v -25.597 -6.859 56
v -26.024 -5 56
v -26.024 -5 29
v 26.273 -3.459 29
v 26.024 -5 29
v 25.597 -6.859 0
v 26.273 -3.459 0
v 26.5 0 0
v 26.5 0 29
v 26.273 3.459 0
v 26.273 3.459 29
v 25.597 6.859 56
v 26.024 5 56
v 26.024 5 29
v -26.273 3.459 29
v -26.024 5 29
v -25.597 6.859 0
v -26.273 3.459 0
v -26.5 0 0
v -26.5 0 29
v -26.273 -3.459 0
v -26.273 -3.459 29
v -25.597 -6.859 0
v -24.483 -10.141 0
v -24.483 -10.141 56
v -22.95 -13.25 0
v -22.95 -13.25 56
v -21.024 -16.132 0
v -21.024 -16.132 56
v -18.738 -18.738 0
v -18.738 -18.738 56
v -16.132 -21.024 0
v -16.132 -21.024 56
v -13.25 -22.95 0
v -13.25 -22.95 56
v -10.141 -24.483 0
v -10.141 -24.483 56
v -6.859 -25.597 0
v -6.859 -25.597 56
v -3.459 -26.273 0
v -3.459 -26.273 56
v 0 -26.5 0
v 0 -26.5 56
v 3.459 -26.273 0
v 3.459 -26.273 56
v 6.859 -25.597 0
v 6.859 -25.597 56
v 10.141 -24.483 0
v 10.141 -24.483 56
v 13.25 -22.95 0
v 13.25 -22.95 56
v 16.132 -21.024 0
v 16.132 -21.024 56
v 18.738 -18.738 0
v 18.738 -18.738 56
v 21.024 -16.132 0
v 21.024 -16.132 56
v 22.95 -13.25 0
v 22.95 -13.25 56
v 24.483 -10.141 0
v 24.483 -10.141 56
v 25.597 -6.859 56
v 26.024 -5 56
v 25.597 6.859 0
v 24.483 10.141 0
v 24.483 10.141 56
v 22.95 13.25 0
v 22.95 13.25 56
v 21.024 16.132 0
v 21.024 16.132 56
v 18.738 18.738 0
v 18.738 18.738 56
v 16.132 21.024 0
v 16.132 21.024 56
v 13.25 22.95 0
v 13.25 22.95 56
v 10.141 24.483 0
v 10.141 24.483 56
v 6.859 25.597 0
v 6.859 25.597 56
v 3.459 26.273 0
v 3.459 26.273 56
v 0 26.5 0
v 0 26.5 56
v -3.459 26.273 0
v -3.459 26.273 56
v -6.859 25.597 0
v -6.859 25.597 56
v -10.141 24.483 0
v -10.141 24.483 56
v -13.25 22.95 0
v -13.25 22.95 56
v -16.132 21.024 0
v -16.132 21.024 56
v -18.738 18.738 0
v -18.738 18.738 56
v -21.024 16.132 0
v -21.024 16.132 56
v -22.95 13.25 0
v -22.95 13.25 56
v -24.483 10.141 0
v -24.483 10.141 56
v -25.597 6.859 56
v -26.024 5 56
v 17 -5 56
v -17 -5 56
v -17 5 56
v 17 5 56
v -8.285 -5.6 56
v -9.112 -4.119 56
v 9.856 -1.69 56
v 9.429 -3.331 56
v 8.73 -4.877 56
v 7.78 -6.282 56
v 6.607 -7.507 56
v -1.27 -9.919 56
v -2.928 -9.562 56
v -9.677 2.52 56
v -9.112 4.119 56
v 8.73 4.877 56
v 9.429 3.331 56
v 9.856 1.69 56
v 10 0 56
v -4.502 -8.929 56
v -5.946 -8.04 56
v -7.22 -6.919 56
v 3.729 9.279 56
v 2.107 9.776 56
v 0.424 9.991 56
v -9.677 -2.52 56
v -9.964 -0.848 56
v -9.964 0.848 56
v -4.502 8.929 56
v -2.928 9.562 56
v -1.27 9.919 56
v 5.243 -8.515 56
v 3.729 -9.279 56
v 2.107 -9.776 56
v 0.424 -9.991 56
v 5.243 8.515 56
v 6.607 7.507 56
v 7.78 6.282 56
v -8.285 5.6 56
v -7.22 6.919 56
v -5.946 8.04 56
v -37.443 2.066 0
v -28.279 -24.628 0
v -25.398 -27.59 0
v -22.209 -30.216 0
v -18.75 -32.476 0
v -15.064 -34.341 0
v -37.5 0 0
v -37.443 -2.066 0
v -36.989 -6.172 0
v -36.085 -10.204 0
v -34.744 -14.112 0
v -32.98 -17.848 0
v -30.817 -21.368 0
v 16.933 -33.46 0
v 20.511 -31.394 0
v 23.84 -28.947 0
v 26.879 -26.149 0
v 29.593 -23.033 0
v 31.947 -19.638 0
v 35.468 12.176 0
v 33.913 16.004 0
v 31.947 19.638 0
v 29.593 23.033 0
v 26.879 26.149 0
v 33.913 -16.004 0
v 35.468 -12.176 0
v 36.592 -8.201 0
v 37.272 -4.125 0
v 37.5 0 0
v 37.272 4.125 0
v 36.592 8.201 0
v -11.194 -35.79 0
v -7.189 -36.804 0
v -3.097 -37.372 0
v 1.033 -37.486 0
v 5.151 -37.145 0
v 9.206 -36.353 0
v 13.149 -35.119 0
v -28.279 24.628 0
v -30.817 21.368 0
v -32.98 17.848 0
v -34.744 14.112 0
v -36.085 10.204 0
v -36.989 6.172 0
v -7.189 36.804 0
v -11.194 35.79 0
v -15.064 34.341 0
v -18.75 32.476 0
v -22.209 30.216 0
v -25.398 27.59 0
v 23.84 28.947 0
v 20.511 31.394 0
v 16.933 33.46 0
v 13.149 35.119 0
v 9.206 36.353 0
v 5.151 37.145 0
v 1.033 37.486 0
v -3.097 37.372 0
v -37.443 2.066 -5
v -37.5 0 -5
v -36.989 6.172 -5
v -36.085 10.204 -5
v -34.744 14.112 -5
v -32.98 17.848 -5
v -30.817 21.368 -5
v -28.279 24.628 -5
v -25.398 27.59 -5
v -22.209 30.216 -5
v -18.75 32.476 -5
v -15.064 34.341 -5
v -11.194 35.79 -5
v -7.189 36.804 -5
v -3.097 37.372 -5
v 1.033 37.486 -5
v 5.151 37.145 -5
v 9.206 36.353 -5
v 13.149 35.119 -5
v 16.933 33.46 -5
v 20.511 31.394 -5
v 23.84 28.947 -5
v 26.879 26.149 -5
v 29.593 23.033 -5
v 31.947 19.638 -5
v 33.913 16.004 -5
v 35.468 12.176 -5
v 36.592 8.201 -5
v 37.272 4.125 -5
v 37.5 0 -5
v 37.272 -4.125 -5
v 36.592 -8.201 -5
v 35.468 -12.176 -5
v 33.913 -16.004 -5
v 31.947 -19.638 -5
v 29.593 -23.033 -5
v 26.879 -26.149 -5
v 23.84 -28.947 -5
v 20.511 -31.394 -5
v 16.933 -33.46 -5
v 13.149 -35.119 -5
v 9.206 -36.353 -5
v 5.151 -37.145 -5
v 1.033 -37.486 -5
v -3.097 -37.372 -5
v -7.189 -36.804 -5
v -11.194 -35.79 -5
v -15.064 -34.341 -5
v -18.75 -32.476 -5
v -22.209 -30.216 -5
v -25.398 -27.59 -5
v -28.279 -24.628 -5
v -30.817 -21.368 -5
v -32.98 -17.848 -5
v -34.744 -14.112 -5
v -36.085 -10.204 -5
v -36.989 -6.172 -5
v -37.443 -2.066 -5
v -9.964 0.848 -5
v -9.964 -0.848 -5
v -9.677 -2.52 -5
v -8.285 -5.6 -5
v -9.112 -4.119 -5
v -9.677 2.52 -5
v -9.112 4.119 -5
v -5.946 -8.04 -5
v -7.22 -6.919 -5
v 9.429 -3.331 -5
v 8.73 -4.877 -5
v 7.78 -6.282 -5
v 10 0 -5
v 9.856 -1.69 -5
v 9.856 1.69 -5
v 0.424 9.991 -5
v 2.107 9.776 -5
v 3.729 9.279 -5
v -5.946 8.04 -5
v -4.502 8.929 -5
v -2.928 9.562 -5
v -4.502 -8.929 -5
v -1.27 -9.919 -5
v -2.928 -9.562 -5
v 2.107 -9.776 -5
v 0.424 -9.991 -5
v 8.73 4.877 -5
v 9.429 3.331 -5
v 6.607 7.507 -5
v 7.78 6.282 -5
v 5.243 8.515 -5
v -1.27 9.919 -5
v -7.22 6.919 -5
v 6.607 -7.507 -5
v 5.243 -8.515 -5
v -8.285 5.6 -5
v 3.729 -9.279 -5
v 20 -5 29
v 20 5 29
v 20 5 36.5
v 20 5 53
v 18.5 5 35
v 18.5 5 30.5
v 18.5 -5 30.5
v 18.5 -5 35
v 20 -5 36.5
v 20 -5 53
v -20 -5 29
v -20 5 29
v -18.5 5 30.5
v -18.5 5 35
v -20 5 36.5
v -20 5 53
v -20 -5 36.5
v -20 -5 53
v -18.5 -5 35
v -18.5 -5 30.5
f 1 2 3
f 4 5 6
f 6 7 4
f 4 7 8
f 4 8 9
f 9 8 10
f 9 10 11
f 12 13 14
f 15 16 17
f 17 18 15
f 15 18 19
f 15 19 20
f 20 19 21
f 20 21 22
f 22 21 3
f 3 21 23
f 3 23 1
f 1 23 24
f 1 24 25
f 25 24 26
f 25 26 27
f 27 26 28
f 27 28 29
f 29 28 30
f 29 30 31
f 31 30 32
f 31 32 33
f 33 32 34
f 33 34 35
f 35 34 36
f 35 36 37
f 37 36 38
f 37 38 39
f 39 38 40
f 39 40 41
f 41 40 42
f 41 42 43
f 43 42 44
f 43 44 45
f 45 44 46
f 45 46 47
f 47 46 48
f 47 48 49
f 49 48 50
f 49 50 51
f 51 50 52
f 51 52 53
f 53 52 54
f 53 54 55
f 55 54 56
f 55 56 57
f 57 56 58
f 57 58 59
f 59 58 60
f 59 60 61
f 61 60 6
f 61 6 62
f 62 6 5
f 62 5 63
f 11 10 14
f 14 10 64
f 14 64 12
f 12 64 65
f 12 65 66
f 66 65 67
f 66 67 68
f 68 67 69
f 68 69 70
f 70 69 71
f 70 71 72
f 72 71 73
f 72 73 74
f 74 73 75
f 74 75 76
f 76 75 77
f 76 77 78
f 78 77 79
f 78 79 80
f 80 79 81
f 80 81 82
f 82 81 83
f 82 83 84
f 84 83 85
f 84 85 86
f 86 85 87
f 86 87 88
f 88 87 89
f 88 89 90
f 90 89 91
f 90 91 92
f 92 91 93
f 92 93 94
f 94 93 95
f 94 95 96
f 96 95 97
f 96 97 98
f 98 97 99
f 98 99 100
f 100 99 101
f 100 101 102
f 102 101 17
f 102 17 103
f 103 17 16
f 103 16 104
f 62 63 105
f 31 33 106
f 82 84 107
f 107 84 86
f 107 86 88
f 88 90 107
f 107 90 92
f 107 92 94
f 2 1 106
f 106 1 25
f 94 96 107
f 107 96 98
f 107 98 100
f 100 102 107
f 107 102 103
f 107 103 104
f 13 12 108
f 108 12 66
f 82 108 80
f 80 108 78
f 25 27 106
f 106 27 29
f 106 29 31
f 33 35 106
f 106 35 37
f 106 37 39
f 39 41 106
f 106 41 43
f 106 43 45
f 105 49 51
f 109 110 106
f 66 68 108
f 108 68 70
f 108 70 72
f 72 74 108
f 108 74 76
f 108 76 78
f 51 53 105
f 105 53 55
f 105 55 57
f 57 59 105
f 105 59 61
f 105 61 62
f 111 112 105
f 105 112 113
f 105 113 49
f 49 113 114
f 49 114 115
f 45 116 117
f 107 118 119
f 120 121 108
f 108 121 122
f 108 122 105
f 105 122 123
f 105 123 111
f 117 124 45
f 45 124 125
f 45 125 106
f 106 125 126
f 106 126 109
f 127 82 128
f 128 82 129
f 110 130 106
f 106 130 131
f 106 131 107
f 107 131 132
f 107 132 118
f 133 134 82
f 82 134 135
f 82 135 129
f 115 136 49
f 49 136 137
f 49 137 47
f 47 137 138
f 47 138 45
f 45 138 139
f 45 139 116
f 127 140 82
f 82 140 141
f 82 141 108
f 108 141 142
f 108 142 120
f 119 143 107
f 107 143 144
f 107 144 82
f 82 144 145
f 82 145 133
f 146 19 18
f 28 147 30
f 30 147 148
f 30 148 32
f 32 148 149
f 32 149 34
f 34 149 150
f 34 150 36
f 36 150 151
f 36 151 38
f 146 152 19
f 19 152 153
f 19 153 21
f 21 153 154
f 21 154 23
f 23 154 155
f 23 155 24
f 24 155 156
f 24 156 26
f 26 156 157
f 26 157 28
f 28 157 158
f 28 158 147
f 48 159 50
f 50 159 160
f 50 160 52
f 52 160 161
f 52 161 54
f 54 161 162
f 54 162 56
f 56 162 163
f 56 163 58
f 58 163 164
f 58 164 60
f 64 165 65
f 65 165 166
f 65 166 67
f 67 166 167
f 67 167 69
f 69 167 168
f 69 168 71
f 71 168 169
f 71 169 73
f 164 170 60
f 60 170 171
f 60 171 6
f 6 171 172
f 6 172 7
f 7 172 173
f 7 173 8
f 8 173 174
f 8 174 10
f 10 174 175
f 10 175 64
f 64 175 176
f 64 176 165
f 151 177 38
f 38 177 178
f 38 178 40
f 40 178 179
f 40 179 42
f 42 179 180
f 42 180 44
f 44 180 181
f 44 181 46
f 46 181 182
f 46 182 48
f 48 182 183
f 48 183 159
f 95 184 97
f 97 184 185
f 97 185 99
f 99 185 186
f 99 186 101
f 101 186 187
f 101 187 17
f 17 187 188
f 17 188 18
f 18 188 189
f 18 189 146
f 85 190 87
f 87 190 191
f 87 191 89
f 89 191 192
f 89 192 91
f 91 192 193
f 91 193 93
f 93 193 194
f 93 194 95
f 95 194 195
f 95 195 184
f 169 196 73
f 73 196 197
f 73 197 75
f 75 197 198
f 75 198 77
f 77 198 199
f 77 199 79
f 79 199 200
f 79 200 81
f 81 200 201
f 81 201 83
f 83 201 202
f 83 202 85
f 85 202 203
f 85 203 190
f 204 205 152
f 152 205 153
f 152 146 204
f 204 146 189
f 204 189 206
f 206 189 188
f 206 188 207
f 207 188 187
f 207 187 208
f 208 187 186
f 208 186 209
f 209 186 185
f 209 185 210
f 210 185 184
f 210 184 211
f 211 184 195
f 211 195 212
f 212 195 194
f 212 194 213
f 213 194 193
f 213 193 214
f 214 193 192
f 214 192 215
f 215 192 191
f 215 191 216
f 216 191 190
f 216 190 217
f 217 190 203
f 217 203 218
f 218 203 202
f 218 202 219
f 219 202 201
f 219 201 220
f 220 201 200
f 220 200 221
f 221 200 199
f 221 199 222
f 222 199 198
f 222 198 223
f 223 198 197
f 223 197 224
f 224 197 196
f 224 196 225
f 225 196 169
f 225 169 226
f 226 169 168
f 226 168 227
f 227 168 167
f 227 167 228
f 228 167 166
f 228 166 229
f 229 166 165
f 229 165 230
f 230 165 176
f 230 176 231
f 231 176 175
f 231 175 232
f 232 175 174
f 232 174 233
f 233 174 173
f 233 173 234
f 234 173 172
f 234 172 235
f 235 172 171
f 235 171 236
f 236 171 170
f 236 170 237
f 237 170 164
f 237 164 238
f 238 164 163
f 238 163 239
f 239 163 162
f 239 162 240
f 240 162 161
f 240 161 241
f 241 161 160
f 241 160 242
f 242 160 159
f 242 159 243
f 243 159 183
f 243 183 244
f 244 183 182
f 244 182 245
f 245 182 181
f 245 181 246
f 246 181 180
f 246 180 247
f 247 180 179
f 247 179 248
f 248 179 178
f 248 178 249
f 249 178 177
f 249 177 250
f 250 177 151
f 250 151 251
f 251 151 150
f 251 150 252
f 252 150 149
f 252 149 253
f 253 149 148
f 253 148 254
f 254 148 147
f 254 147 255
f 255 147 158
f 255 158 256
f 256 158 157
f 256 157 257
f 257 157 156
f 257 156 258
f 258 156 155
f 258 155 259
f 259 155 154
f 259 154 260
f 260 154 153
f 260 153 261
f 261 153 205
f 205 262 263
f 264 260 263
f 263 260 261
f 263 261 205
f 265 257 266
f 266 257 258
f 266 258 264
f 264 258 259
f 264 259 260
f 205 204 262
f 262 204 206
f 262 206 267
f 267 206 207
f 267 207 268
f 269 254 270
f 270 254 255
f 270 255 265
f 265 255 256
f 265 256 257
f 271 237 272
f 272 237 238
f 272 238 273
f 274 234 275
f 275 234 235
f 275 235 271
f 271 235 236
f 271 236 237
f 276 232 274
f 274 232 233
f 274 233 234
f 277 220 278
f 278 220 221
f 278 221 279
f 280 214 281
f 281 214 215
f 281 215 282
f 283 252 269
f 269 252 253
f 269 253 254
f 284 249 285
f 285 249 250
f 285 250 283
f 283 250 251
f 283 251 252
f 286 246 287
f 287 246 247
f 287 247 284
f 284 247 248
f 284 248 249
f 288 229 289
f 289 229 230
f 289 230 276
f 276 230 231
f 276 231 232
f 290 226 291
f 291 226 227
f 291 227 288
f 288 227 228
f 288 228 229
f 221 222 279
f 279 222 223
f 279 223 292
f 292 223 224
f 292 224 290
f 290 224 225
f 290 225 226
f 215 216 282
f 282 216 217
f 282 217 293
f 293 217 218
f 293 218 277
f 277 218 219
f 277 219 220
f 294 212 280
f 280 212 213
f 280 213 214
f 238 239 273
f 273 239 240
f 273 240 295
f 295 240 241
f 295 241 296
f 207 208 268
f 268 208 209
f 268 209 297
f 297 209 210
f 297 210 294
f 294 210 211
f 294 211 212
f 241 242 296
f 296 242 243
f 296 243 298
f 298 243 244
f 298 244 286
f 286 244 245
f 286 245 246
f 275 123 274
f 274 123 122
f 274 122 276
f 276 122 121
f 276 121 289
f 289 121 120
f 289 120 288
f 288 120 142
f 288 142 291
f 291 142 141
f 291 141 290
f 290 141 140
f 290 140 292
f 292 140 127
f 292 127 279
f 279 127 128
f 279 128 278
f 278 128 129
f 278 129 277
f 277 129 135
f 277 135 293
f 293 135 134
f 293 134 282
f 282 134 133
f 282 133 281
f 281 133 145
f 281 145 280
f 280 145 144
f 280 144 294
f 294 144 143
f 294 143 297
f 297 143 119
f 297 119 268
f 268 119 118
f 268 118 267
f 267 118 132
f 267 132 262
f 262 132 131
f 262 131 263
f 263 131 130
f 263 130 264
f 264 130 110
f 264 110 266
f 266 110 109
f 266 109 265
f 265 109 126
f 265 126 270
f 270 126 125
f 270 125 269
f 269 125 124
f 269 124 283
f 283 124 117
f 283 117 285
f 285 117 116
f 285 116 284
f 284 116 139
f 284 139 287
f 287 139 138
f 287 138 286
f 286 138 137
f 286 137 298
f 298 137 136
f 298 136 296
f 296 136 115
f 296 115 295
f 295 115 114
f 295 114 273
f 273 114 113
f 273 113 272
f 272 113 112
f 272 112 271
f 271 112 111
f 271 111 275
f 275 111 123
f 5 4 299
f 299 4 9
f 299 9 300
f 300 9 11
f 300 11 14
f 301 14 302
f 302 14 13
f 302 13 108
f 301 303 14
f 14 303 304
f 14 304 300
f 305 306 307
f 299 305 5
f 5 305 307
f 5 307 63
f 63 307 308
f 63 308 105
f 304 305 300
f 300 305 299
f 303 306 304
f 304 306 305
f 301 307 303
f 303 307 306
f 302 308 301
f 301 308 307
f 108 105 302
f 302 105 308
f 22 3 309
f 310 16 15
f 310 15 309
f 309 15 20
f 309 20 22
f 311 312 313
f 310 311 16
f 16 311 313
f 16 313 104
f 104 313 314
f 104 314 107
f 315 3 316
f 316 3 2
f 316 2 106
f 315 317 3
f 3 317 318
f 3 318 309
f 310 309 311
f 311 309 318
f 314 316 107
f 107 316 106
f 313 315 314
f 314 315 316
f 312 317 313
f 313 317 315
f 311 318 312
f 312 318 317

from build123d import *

# Parameters (mm, degrees)
SKETCH1_R           = 26.5
BOSS_EXTRUDE1_DEPTH = 56
SKETCH4_R           = 37.5
BOSS_EXTRUDE2_DEPTH = 5
SKETCH5_R           = 10
CUT_EXTRUDE1_DEPTH  = 81.830068663
CUT_EXTRUDE2_DEPTH  = 5


with BuildPart() as part:
    # Sketch1 → Boss-Extrude1 (new body)
    with BuildSketch(Plane.XY):
        Circle(SKETCH1_R)
    extrude(amount=BOSS_EXTRUDE1_DEPTH)

    # Sketch4 → Boss-Extrude2 (add)
    with BuildSketch(Plane(origin=(0, 0, 0), x_dir=(-1, 0, 0), z_dir=(0, 0, -1))):
        Circle(SKETCH4_R)
    extrude(amount=BOSS_EXTRUDE2_DEPTH)

    # Sketch5 → Cut-Extrude1 (cut, through all)
    with BuildSketch(Plane.XY.offset(56)):
        Circle(SKETCH5_R)
    extrude(amount=-CUT_EXTRUDE1_DEPTH, mode=Mode.SUBTRACT)

    # Sketch6 → Cut-Extrude2 (cut, symmetric)
    with BuildSketch(Plane(origin=(0, 0, 0), x_dir=(1, 0, 0), z_dir=(0, 1, 0))):
        Polygon((17, -56), (20, -56), (26.5, -56), (26.5, -29), (20, -29), (18.5, -30.5), (18.5, -35), (20, -36.5), (20, -53), align=None)
    cut_extrude2 = extrude(amount=CUT_EXTRUDE2_DEPTH, both=True, mode=Mode.SUBTRACT)

    # Mirror1: Cut-Extrude2 across plane
    add(cut_extrude2.mirror(Plane(origin=(0, 0, 0), x_dir=(0, 0, 1), z_dir=(1, 0, 0))), mode=Mode.SUBTRACT)


solid = part.part
